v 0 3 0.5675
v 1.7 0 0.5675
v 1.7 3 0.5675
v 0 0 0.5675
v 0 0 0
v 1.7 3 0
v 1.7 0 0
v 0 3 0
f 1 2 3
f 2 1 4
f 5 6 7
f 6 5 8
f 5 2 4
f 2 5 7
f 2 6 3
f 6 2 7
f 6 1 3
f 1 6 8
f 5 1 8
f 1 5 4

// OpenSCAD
/* Warning, this is a very basic generator with a lot of approximation 
input data : [WLCSP, HKB, 1.7x3.0x0.5675mm, 18, , A, C04-06037A]
generated by com.zoubworld.electronics.cad.model3d.Basic
Date : Sun Feb 15 10:50:49 CET 2026
*/

//body
color("black")
translate([0,0,0])
cube([1.7,3.0,0.5675], center=false);
